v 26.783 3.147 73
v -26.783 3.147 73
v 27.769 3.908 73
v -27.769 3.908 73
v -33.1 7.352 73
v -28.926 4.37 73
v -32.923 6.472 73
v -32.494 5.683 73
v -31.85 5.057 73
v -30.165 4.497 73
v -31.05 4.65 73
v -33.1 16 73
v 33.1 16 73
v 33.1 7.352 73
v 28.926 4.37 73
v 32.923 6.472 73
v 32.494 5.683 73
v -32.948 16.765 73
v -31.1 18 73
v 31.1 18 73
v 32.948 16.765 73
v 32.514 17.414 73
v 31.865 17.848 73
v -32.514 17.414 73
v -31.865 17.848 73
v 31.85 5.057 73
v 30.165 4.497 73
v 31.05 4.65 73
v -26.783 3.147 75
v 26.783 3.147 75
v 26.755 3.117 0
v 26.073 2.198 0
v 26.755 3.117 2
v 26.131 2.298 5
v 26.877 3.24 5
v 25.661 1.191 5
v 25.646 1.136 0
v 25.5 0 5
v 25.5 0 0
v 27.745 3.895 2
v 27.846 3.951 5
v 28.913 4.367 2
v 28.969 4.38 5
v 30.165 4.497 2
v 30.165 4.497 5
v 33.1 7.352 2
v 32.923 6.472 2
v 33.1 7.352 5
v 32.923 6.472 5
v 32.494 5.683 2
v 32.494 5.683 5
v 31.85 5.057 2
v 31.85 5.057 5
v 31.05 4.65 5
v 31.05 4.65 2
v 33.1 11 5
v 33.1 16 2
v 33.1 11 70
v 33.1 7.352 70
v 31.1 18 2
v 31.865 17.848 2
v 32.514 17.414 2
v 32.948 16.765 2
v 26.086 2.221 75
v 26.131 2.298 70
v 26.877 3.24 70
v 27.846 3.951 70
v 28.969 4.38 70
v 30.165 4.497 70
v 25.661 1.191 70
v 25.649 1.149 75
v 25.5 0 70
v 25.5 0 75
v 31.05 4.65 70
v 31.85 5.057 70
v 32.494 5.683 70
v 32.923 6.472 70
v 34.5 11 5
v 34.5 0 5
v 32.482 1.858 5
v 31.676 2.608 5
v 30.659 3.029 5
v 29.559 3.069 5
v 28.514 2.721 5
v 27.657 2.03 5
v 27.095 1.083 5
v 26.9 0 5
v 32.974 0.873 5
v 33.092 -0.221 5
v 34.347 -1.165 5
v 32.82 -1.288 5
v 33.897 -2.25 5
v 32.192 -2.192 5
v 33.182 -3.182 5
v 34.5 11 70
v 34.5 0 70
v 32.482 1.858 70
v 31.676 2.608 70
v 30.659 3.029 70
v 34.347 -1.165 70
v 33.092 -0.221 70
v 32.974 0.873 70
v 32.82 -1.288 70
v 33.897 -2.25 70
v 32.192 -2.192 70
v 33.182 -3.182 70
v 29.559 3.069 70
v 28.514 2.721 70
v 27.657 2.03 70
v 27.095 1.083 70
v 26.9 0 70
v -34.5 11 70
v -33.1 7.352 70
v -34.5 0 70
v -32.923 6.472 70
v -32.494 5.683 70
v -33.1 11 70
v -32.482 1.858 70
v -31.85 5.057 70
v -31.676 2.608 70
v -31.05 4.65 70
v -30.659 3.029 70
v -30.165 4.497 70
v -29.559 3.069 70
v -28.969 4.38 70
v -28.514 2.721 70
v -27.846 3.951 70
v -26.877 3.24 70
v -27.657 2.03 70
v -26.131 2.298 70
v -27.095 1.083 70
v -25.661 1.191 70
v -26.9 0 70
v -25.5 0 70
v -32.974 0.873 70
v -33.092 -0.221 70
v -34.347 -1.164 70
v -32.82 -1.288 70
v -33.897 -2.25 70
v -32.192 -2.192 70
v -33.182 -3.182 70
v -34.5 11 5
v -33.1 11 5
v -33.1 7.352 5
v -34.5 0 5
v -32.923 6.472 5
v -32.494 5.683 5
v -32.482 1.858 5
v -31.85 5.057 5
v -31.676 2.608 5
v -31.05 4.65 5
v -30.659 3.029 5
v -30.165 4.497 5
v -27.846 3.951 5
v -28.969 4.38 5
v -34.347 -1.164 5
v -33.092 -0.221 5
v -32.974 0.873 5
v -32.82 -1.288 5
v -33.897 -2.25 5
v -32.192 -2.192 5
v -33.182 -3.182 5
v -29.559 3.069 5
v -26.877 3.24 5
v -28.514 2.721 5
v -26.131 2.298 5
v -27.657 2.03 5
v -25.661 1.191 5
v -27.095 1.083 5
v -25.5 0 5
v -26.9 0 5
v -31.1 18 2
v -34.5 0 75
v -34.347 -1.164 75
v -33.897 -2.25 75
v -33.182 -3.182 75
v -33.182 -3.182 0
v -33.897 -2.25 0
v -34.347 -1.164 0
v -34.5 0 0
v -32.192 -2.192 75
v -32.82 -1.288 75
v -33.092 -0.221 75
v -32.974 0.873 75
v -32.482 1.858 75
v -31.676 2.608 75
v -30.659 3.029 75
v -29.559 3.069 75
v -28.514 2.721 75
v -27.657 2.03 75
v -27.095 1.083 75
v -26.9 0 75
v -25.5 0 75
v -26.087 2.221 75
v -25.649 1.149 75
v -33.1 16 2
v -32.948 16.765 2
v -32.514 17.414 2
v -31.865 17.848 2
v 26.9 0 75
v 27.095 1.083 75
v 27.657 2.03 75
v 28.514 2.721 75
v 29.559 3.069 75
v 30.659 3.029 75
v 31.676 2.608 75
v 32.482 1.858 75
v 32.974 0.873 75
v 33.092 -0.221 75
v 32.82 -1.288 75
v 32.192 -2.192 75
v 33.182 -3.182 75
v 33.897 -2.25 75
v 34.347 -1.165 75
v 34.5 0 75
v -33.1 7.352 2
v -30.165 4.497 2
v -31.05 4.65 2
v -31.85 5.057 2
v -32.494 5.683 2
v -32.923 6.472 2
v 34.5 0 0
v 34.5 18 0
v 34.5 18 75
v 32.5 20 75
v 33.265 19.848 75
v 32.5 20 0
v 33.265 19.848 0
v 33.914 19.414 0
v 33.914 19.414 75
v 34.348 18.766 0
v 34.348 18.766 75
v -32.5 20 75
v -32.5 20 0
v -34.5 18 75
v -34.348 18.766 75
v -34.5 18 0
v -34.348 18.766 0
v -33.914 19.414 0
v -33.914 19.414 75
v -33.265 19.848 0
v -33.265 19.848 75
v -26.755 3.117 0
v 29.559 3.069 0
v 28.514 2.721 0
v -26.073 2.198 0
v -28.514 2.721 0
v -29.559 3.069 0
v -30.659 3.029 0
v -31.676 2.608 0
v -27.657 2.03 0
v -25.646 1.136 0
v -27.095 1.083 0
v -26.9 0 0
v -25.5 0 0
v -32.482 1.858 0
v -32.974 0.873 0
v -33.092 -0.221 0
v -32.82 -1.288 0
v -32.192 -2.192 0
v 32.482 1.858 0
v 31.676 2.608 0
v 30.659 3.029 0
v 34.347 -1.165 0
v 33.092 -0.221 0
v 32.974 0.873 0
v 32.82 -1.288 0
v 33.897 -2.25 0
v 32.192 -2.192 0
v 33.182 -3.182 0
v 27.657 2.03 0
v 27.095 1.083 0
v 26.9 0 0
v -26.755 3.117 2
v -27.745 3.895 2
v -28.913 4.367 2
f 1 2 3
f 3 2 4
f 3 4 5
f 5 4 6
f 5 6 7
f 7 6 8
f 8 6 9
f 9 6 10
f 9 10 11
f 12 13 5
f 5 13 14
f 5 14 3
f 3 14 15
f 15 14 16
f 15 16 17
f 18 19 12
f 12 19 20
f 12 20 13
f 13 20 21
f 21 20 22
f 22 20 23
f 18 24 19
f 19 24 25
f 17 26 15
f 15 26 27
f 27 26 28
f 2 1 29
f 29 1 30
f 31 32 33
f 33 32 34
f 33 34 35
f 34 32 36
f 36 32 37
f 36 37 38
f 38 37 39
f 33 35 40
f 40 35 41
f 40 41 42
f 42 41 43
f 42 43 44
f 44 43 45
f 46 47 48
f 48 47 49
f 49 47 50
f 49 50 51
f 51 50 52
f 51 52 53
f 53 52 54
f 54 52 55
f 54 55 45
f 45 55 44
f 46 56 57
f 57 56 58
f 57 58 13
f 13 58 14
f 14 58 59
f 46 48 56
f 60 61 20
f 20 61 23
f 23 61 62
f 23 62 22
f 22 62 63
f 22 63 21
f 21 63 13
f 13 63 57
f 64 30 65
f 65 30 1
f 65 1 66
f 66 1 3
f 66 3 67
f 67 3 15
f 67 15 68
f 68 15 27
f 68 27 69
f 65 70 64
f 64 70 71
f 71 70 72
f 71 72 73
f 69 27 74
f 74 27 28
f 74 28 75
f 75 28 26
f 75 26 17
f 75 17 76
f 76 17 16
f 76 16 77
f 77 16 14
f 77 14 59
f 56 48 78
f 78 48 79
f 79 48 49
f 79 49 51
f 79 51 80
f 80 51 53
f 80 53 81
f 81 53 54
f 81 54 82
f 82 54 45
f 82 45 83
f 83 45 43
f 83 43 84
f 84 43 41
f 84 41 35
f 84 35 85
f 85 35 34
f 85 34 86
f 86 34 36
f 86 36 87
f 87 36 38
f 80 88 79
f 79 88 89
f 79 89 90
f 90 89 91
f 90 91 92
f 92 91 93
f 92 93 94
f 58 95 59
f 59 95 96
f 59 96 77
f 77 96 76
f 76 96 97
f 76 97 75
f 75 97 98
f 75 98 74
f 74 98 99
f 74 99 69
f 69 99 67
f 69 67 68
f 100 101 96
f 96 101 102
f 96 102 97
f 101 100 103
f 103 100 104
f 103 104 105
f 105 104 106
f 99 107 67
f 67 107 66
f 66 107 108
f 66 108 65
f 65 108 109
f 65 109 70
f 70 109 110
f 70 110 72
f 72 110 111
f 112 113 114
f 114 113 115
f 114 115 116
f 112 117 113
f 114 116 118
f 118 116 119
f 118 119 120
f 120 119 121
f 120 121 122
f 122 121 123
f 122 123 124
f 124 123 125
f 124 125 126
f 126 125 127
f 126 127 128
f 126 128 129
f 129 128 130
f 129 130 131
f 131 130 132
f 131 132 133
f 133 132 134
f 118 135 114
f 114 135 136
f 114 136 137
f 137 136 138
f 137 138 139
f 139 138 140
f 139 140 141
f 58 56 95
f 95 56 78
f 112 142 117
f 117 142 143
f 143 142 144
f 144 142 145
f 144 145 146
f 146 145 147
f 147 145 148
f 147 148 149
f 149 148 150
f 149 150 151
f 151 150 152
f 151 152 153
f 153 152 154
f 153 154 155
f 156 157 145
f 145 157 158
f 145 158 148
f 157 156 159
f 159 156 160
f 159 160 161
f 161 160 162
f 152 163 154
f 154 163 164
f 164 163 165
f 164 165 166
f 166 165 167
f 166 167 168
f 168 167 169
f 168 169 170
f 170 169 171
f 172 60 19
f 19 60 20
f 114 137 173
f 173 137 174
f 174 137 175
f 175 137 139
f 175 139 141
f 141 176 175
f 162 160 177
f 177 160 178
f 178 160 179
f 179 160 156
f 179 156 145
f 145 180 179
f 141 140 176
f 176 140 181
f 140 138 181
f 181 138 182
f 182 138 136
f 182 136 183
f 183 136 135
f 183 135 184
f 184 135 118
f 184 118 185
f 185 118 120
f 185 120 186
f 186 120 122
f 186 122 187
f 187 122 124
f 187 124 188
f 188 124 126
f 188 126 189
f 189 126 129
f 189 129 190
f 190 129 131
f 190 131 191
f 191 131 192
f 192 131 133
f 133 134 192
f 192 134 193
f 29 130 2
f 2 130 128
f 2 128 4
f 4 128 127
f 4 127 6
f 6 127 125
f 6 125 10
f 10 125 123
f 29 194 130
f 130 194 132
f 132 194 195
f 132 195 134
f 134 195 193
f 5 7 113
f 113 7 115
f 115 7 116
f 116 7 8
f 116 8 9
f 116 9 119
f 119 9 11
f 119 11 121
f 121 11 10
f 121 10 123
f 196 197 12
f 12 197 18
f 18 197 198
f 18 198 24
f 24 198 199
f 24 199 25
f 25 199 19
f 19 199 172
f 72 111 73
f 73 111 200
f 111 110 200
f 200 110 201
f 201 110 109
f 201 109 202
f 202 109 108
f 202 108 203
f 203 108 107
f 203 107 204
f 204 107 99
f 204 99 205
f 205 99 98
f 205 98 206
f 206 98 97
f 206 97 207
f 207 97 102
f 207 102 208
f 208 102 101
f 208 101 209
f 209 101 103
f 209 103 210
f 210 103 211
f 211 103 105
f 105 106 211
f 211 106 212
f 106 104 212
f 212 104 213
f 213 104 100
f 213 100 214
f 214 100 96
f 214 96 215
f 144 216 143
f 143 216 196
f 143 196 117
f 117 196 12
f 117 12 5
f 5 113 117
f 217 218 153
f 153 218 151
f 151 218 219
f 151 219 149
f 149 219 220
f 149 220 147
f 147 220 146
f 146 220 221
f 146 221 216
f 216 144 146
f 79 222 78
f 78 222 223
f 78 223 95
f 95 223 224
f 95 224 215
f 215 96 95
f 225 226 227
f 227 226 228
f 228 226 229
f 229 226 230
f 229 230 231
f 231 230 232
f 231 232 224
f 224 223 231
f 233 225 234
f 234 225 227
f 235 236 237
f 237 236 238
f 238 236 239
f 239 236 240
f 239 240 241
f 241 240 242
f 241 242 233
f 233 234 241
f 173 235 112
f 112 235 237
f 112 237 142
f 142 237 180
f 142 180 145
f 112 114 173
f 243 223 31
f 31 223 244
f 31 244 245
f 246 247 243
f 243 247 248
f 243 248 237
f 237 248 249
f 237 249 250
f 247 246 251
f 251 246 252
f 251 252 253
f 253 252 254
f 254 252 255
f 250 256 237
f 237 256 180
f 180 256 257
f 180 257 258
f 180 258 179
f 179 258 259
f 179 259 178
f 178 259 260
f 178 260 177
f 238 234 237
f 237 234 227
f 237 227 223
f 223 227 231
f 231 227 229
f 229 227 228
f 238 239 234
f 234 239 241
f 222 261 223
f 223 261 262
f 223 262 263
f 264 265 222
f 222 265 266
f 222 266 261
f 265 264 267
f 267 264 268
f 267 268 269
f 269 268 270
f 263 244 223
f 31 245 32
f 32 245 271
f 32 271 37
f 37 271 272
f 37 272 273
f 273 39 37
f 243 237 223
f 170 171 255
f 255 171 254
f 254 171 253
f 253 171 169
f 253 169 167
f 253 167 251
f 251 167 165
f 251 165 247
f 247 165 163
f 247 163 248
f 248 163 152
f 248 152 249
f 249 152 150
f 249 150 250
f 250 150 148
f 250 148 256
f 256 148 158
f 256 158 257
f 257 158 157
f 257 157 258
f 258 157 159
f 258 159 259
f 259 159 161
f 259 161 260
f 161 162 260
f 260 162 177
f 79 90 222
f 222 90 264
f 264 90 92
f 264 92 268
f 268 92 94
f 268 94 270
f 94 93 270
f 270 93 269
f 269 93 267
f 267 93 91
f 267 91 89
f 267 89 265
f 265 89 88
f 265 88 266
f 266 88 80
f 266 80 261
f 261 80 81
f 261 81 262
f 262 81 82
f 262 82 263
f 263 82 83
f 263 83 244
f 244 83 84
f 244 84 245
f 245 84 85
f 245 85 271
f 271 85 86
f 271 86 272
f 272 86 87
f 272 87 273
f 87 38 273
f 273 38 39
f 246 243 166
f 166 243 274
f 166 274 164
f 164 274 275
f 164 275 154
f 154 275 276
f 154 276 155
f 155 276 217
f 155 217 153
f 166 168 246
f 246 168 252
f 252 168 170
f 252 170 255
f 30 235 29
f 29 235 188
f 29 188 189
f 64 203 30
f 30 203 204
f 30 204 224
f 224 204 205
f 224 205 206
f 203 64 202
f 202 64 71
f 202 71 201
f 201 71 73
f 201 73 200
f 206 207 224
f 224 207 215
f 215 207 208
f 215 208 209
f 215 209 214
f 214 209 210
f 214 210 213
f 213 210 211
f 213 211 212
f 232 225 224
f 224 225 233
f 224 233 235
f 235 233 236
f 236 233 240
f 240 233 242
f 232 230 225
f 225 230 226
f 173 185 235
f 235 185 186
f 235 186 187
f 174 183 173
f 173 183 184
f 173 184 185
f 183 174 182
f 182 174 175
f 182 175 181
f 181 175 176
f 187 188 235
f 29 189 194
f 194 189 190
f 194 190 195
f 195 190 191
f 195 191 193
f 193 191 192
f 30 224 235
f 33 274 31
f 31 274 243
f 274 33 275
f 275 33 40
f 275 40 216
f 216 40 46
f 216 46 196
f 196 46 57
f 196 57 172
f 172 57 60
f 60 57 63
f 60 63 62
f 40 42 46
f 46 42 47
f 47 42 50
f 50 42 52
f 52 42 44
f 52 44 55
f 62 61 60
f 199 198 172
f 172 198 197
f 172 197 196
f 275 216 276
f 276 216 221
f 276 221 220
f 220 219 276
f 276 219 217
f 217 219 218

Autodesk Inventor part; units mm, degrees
ref_plane "YZ Plane" through (0, 0, 0) normal (1, 0, 0) x (0, 1, 0)
ref_plane "XZ Plane" through (0, 0, 0) normal (0, 1, 0) x (-1, 0, 0)
ref_plane "XY Plane" through (0, 0, 0) normal (0, 0, 1) x (1, 0, 0)
sketch "Sketch1" plane through (0, 0, 0) normal (0, 0, 1) x (1, 0, 0)
  arc A0 (-26.899996, 0.000091) -> (-32.192027, -2.19194) centre (-29.999996, 0.000091) ccw
  arc A1 (32.192013, -2.19194) -> (26.899982, 0.000091) centre (29.999982, 0.000091) ccw
  arc A2 (-25.499996, 0.000091) -> (-33.099996, 3.261992) centre (-29.999996, 0.000091) ccw
  arc A3 (33.181962, -3.181889) -> (34.499982, 0.000091) centre (29.999982, 0.000091) ccw
  line L0 (-29.999996, 0.000091) -> (-35.729952, -5.729865)
  line L1 (-29.999996, 0.000091) -> (-21.896614, 0.000091) construction
  line L2 (29.999982, 0.000091) -> (35.185041, -5.184968)
  line L3 (29.999982, 0.000091) -> (37.332763, 0.000091) construction
  line L4 (-29.999996, 0.000091) -> (29.999982, 0.000091)
  line L5 (-34.499996, 0.000255) -> (-34.499996, 20.000255)
  line L6 (-34.499996, 20.000255) -> (34.499982, 20.000255)
  line L7 (34.499982, 20.000255) -> (34.499982, 0.000091)
  line L8 (-31.099996, 18) -> (31.099982, 18)
  line L9 (33.099982, 16) -> (33.099982, 3.261992)
  arc A4 (-33.099996, 3.261992) -> (-34.499996, 0.000091) centre (-29.999996, 0.000091) ccw
  line L10 (-33.099996, 3.261992) -> (-33.099996, 16)
  arc A5 (33.099982, 3.261992) -> (25.499982, 0.000091) centre (29.999982, 0.000091) ccw
  arc A6 (-34.499996, -0.000073) -> (-33.181977, -3.181889) centre (-29.999996, 0.000091) ccw
  arc A7 (-34.499996, 0.000091) -> (-34.499996, -0.000073) centre (-29.999996, 0.000091) ccw
  arc A8 (-33.099996, 7.640683) -> (-29.95922, 4.499906) centre (-30.103466, 7.496437) ccw
  line L11 (-29.95922, 4.499906) -> (-33.099996, 7.640683) construction
  line L12 (-29.95922, 4.499906) -> (-25.517491, 4.499906) construction
  arc A9 (29.959205, 4.499906) -> (33.099982, 7.640683) centre (30.103452, 7.496437) ccw
  line L13 (29.959205, 4.499906) -> (33.099982, 7.640683) construction
  line L14 (29.959205, 4.499906) -> (34.400934, 4.499906) construction
  arc A10 (-31.099996, 18) -> (-33.099996, 16) centre (-31.099996, 16) ccw
  arc A11 (33.099982, 16) -> (31.099982, 18) centre (31.099982, 16) ccw
  point P0 (0, 0)
  point P1 (-33.099996, 18)
  point P2 (33.099982, 18)
  point P3 (-30.164953, 4.497067)
  point P4 (-33.099996, 7.35219)
  point P5 (33.099982, 7.35219)
  point P6 (30.164938, 4.497067)
  dimension "d0" = 6.2
  dimension "d1" = 6.2
  dimension "d2" = 9
  dimension "d3" = 9
  dimension "d4" = 135
  dimension "d5" = 45
  dimension "d6" = 20
  dimension "d17" = 135
  dimension "d18" = 3
  dimension "d19" = 45
  dimension "d20" = 3
  dimension "d23" = 2
extrude "Extrusion1" add sketch "Sketch1" along normal blind 75 contours A0 L0 A6 A4 A2 A8 L4 | A8 A2 | A5 A9 L9 A11 L8 A10 L10 A4 L5 L6 L7 A3 L2 A1 L4 | A5 A9
fillet "Fillet1" radius 2 2 edges at (-34.5, 20.0003, 37.5) (34.5, 20.0003, 37.5)
sketch "Sketch1 outline for Extrusion3" plane through (0, 0, 0) normal (0, 0, 1) x (1, 0, 0)
  arc A0 (-30.164953, 4.497067) -> (-33.099996, 7.35219) centre (-30.103466, 7.496437) cw
  arc A1 (-33.099996, 3.261992) -> (-30.164953, 4.497067) centre (-29.999996, 0.000091) cw
  line L0 (-33.099996, 7.35219) -> (-33.099996, 3.261992)
  arc A2 (33.099982, 7.35219) -> (30.164938, 4.497067) centre (30.103452, 7.496437) cw
  line L1 (33.099982, 3.261992) -> (33.099982, 7.35219)
  arc A3 (30.164938, 4.497067) -> (33.099982, 3.261992) centre (29.999982, 0.000091) cw
extrude "Extrusion3" add sketch "Sketch1 outline for Extrusion3" along normal blind 75
ref_plane "Work Plane1" through (-33.099996, -4, 0) normal (0, -1, 0) x (1, 0, 0)
sketch "Sketch2" plane through (-33.099996, -4, 0) normal (0, -1, 0) x (1, 0, 0)
  line L0 (73.099996, 5) -> (-6.900004, 5)
  line L1 (-6.900004, 5) -> (-6.900004, 70)
  line L2 (-6.900004, 70) -> (73.099996, 70)
  line L3 (73.099996, 70) -> (73.099996, 5)
  line L4 (73.099996, 5) -> (-6.900004, 70) construction
  line L5 (-6.900004, 5) -> (73.099996, 70) construction
  point P0 (33.099996, 0)
  point P1 (33.099996, 37.5)
  dimension "d12" = 80
  dimension "d13" = 65
  dimension "d14" = 37.5
extrude "Extrusion2" cut sketch "Sketch2" against normal blind 15
sketch "Sketch3" plane through (0, 0, 75) normal (0, 0, 1) x (1, 0, 0)
  line L0 (34.499982, 0.000091) -> (34.499982, 18.000255)
  line L1 (-32.499996, 20.000255) -> (32.499982, 20.000255)
  line L2 (34.499982, 18.000255) -> (34.499982, 3.146922)
  line L3 (34.499982, 3.146922) -> (-34.499996, 3.146922)
  line L4 (-34.499996, 3.146922) -> (-34.499996, 18.000255)
  arc A0 (-32.499996, 20.000255) -> (-34.499996, 18.000255) centre (-32.499996, 18.000255) ccw
  arc A1 (34.499982, 18.000255) -> (32.499982, 20.000255) centre (32.499982, 18.000255) ccw
  point P0 (0, 0)
  dimension "d24" = 2
extrude "Extrusion4" add sketch "Sketch3" against normal blind 2
sketch "Sketch4" plane through (0, 0, 0) normal (0, 0, -1) x (-1, 0, 0)
  line L0 (34.499996, 20.000255) -> (-34.499982, 20.000255)
  line L1 (-34.499982, 20.000255) -> (-34.499982, 0.000091)
  line L2 (34.499996, 0.000255) -> (34.499996, 20.000255)
  line L3 (34.499996, 18.000255) -> (34.499996, 0.000255)
  line L4 (-32.499982, 20.000255) -> (32.499996, 20.000255)
  line L5 (34.499996, 18.000255) -> (34.499996, 3.117372)
  line L6 (34.499996, 3.117372) -> (-34.499982, 3.117372)
  line L7 (-34.499982, 3.117372) -> (-34.499982, 18.000255)
  arc A0 (-32.499982, 20.000255) -> (-34.499982, 18.000255) centre (-32.499982, 18.000255) ccw
  arc A1 (34.499996, 18.000255) -> (32.499996, 20.000255) centre (32.499996, 18.000255) ccw
  point P0 (0, 0)
  point P1 (-34.499982, 3.117372)
  dimension "d27" = 2
extrude "Extrusion5" add sketch "Sketch4" against normal blind 2 contours A1 L2 L6 L1 A0 L0
properties part number "Cage60mm-Boxy"
